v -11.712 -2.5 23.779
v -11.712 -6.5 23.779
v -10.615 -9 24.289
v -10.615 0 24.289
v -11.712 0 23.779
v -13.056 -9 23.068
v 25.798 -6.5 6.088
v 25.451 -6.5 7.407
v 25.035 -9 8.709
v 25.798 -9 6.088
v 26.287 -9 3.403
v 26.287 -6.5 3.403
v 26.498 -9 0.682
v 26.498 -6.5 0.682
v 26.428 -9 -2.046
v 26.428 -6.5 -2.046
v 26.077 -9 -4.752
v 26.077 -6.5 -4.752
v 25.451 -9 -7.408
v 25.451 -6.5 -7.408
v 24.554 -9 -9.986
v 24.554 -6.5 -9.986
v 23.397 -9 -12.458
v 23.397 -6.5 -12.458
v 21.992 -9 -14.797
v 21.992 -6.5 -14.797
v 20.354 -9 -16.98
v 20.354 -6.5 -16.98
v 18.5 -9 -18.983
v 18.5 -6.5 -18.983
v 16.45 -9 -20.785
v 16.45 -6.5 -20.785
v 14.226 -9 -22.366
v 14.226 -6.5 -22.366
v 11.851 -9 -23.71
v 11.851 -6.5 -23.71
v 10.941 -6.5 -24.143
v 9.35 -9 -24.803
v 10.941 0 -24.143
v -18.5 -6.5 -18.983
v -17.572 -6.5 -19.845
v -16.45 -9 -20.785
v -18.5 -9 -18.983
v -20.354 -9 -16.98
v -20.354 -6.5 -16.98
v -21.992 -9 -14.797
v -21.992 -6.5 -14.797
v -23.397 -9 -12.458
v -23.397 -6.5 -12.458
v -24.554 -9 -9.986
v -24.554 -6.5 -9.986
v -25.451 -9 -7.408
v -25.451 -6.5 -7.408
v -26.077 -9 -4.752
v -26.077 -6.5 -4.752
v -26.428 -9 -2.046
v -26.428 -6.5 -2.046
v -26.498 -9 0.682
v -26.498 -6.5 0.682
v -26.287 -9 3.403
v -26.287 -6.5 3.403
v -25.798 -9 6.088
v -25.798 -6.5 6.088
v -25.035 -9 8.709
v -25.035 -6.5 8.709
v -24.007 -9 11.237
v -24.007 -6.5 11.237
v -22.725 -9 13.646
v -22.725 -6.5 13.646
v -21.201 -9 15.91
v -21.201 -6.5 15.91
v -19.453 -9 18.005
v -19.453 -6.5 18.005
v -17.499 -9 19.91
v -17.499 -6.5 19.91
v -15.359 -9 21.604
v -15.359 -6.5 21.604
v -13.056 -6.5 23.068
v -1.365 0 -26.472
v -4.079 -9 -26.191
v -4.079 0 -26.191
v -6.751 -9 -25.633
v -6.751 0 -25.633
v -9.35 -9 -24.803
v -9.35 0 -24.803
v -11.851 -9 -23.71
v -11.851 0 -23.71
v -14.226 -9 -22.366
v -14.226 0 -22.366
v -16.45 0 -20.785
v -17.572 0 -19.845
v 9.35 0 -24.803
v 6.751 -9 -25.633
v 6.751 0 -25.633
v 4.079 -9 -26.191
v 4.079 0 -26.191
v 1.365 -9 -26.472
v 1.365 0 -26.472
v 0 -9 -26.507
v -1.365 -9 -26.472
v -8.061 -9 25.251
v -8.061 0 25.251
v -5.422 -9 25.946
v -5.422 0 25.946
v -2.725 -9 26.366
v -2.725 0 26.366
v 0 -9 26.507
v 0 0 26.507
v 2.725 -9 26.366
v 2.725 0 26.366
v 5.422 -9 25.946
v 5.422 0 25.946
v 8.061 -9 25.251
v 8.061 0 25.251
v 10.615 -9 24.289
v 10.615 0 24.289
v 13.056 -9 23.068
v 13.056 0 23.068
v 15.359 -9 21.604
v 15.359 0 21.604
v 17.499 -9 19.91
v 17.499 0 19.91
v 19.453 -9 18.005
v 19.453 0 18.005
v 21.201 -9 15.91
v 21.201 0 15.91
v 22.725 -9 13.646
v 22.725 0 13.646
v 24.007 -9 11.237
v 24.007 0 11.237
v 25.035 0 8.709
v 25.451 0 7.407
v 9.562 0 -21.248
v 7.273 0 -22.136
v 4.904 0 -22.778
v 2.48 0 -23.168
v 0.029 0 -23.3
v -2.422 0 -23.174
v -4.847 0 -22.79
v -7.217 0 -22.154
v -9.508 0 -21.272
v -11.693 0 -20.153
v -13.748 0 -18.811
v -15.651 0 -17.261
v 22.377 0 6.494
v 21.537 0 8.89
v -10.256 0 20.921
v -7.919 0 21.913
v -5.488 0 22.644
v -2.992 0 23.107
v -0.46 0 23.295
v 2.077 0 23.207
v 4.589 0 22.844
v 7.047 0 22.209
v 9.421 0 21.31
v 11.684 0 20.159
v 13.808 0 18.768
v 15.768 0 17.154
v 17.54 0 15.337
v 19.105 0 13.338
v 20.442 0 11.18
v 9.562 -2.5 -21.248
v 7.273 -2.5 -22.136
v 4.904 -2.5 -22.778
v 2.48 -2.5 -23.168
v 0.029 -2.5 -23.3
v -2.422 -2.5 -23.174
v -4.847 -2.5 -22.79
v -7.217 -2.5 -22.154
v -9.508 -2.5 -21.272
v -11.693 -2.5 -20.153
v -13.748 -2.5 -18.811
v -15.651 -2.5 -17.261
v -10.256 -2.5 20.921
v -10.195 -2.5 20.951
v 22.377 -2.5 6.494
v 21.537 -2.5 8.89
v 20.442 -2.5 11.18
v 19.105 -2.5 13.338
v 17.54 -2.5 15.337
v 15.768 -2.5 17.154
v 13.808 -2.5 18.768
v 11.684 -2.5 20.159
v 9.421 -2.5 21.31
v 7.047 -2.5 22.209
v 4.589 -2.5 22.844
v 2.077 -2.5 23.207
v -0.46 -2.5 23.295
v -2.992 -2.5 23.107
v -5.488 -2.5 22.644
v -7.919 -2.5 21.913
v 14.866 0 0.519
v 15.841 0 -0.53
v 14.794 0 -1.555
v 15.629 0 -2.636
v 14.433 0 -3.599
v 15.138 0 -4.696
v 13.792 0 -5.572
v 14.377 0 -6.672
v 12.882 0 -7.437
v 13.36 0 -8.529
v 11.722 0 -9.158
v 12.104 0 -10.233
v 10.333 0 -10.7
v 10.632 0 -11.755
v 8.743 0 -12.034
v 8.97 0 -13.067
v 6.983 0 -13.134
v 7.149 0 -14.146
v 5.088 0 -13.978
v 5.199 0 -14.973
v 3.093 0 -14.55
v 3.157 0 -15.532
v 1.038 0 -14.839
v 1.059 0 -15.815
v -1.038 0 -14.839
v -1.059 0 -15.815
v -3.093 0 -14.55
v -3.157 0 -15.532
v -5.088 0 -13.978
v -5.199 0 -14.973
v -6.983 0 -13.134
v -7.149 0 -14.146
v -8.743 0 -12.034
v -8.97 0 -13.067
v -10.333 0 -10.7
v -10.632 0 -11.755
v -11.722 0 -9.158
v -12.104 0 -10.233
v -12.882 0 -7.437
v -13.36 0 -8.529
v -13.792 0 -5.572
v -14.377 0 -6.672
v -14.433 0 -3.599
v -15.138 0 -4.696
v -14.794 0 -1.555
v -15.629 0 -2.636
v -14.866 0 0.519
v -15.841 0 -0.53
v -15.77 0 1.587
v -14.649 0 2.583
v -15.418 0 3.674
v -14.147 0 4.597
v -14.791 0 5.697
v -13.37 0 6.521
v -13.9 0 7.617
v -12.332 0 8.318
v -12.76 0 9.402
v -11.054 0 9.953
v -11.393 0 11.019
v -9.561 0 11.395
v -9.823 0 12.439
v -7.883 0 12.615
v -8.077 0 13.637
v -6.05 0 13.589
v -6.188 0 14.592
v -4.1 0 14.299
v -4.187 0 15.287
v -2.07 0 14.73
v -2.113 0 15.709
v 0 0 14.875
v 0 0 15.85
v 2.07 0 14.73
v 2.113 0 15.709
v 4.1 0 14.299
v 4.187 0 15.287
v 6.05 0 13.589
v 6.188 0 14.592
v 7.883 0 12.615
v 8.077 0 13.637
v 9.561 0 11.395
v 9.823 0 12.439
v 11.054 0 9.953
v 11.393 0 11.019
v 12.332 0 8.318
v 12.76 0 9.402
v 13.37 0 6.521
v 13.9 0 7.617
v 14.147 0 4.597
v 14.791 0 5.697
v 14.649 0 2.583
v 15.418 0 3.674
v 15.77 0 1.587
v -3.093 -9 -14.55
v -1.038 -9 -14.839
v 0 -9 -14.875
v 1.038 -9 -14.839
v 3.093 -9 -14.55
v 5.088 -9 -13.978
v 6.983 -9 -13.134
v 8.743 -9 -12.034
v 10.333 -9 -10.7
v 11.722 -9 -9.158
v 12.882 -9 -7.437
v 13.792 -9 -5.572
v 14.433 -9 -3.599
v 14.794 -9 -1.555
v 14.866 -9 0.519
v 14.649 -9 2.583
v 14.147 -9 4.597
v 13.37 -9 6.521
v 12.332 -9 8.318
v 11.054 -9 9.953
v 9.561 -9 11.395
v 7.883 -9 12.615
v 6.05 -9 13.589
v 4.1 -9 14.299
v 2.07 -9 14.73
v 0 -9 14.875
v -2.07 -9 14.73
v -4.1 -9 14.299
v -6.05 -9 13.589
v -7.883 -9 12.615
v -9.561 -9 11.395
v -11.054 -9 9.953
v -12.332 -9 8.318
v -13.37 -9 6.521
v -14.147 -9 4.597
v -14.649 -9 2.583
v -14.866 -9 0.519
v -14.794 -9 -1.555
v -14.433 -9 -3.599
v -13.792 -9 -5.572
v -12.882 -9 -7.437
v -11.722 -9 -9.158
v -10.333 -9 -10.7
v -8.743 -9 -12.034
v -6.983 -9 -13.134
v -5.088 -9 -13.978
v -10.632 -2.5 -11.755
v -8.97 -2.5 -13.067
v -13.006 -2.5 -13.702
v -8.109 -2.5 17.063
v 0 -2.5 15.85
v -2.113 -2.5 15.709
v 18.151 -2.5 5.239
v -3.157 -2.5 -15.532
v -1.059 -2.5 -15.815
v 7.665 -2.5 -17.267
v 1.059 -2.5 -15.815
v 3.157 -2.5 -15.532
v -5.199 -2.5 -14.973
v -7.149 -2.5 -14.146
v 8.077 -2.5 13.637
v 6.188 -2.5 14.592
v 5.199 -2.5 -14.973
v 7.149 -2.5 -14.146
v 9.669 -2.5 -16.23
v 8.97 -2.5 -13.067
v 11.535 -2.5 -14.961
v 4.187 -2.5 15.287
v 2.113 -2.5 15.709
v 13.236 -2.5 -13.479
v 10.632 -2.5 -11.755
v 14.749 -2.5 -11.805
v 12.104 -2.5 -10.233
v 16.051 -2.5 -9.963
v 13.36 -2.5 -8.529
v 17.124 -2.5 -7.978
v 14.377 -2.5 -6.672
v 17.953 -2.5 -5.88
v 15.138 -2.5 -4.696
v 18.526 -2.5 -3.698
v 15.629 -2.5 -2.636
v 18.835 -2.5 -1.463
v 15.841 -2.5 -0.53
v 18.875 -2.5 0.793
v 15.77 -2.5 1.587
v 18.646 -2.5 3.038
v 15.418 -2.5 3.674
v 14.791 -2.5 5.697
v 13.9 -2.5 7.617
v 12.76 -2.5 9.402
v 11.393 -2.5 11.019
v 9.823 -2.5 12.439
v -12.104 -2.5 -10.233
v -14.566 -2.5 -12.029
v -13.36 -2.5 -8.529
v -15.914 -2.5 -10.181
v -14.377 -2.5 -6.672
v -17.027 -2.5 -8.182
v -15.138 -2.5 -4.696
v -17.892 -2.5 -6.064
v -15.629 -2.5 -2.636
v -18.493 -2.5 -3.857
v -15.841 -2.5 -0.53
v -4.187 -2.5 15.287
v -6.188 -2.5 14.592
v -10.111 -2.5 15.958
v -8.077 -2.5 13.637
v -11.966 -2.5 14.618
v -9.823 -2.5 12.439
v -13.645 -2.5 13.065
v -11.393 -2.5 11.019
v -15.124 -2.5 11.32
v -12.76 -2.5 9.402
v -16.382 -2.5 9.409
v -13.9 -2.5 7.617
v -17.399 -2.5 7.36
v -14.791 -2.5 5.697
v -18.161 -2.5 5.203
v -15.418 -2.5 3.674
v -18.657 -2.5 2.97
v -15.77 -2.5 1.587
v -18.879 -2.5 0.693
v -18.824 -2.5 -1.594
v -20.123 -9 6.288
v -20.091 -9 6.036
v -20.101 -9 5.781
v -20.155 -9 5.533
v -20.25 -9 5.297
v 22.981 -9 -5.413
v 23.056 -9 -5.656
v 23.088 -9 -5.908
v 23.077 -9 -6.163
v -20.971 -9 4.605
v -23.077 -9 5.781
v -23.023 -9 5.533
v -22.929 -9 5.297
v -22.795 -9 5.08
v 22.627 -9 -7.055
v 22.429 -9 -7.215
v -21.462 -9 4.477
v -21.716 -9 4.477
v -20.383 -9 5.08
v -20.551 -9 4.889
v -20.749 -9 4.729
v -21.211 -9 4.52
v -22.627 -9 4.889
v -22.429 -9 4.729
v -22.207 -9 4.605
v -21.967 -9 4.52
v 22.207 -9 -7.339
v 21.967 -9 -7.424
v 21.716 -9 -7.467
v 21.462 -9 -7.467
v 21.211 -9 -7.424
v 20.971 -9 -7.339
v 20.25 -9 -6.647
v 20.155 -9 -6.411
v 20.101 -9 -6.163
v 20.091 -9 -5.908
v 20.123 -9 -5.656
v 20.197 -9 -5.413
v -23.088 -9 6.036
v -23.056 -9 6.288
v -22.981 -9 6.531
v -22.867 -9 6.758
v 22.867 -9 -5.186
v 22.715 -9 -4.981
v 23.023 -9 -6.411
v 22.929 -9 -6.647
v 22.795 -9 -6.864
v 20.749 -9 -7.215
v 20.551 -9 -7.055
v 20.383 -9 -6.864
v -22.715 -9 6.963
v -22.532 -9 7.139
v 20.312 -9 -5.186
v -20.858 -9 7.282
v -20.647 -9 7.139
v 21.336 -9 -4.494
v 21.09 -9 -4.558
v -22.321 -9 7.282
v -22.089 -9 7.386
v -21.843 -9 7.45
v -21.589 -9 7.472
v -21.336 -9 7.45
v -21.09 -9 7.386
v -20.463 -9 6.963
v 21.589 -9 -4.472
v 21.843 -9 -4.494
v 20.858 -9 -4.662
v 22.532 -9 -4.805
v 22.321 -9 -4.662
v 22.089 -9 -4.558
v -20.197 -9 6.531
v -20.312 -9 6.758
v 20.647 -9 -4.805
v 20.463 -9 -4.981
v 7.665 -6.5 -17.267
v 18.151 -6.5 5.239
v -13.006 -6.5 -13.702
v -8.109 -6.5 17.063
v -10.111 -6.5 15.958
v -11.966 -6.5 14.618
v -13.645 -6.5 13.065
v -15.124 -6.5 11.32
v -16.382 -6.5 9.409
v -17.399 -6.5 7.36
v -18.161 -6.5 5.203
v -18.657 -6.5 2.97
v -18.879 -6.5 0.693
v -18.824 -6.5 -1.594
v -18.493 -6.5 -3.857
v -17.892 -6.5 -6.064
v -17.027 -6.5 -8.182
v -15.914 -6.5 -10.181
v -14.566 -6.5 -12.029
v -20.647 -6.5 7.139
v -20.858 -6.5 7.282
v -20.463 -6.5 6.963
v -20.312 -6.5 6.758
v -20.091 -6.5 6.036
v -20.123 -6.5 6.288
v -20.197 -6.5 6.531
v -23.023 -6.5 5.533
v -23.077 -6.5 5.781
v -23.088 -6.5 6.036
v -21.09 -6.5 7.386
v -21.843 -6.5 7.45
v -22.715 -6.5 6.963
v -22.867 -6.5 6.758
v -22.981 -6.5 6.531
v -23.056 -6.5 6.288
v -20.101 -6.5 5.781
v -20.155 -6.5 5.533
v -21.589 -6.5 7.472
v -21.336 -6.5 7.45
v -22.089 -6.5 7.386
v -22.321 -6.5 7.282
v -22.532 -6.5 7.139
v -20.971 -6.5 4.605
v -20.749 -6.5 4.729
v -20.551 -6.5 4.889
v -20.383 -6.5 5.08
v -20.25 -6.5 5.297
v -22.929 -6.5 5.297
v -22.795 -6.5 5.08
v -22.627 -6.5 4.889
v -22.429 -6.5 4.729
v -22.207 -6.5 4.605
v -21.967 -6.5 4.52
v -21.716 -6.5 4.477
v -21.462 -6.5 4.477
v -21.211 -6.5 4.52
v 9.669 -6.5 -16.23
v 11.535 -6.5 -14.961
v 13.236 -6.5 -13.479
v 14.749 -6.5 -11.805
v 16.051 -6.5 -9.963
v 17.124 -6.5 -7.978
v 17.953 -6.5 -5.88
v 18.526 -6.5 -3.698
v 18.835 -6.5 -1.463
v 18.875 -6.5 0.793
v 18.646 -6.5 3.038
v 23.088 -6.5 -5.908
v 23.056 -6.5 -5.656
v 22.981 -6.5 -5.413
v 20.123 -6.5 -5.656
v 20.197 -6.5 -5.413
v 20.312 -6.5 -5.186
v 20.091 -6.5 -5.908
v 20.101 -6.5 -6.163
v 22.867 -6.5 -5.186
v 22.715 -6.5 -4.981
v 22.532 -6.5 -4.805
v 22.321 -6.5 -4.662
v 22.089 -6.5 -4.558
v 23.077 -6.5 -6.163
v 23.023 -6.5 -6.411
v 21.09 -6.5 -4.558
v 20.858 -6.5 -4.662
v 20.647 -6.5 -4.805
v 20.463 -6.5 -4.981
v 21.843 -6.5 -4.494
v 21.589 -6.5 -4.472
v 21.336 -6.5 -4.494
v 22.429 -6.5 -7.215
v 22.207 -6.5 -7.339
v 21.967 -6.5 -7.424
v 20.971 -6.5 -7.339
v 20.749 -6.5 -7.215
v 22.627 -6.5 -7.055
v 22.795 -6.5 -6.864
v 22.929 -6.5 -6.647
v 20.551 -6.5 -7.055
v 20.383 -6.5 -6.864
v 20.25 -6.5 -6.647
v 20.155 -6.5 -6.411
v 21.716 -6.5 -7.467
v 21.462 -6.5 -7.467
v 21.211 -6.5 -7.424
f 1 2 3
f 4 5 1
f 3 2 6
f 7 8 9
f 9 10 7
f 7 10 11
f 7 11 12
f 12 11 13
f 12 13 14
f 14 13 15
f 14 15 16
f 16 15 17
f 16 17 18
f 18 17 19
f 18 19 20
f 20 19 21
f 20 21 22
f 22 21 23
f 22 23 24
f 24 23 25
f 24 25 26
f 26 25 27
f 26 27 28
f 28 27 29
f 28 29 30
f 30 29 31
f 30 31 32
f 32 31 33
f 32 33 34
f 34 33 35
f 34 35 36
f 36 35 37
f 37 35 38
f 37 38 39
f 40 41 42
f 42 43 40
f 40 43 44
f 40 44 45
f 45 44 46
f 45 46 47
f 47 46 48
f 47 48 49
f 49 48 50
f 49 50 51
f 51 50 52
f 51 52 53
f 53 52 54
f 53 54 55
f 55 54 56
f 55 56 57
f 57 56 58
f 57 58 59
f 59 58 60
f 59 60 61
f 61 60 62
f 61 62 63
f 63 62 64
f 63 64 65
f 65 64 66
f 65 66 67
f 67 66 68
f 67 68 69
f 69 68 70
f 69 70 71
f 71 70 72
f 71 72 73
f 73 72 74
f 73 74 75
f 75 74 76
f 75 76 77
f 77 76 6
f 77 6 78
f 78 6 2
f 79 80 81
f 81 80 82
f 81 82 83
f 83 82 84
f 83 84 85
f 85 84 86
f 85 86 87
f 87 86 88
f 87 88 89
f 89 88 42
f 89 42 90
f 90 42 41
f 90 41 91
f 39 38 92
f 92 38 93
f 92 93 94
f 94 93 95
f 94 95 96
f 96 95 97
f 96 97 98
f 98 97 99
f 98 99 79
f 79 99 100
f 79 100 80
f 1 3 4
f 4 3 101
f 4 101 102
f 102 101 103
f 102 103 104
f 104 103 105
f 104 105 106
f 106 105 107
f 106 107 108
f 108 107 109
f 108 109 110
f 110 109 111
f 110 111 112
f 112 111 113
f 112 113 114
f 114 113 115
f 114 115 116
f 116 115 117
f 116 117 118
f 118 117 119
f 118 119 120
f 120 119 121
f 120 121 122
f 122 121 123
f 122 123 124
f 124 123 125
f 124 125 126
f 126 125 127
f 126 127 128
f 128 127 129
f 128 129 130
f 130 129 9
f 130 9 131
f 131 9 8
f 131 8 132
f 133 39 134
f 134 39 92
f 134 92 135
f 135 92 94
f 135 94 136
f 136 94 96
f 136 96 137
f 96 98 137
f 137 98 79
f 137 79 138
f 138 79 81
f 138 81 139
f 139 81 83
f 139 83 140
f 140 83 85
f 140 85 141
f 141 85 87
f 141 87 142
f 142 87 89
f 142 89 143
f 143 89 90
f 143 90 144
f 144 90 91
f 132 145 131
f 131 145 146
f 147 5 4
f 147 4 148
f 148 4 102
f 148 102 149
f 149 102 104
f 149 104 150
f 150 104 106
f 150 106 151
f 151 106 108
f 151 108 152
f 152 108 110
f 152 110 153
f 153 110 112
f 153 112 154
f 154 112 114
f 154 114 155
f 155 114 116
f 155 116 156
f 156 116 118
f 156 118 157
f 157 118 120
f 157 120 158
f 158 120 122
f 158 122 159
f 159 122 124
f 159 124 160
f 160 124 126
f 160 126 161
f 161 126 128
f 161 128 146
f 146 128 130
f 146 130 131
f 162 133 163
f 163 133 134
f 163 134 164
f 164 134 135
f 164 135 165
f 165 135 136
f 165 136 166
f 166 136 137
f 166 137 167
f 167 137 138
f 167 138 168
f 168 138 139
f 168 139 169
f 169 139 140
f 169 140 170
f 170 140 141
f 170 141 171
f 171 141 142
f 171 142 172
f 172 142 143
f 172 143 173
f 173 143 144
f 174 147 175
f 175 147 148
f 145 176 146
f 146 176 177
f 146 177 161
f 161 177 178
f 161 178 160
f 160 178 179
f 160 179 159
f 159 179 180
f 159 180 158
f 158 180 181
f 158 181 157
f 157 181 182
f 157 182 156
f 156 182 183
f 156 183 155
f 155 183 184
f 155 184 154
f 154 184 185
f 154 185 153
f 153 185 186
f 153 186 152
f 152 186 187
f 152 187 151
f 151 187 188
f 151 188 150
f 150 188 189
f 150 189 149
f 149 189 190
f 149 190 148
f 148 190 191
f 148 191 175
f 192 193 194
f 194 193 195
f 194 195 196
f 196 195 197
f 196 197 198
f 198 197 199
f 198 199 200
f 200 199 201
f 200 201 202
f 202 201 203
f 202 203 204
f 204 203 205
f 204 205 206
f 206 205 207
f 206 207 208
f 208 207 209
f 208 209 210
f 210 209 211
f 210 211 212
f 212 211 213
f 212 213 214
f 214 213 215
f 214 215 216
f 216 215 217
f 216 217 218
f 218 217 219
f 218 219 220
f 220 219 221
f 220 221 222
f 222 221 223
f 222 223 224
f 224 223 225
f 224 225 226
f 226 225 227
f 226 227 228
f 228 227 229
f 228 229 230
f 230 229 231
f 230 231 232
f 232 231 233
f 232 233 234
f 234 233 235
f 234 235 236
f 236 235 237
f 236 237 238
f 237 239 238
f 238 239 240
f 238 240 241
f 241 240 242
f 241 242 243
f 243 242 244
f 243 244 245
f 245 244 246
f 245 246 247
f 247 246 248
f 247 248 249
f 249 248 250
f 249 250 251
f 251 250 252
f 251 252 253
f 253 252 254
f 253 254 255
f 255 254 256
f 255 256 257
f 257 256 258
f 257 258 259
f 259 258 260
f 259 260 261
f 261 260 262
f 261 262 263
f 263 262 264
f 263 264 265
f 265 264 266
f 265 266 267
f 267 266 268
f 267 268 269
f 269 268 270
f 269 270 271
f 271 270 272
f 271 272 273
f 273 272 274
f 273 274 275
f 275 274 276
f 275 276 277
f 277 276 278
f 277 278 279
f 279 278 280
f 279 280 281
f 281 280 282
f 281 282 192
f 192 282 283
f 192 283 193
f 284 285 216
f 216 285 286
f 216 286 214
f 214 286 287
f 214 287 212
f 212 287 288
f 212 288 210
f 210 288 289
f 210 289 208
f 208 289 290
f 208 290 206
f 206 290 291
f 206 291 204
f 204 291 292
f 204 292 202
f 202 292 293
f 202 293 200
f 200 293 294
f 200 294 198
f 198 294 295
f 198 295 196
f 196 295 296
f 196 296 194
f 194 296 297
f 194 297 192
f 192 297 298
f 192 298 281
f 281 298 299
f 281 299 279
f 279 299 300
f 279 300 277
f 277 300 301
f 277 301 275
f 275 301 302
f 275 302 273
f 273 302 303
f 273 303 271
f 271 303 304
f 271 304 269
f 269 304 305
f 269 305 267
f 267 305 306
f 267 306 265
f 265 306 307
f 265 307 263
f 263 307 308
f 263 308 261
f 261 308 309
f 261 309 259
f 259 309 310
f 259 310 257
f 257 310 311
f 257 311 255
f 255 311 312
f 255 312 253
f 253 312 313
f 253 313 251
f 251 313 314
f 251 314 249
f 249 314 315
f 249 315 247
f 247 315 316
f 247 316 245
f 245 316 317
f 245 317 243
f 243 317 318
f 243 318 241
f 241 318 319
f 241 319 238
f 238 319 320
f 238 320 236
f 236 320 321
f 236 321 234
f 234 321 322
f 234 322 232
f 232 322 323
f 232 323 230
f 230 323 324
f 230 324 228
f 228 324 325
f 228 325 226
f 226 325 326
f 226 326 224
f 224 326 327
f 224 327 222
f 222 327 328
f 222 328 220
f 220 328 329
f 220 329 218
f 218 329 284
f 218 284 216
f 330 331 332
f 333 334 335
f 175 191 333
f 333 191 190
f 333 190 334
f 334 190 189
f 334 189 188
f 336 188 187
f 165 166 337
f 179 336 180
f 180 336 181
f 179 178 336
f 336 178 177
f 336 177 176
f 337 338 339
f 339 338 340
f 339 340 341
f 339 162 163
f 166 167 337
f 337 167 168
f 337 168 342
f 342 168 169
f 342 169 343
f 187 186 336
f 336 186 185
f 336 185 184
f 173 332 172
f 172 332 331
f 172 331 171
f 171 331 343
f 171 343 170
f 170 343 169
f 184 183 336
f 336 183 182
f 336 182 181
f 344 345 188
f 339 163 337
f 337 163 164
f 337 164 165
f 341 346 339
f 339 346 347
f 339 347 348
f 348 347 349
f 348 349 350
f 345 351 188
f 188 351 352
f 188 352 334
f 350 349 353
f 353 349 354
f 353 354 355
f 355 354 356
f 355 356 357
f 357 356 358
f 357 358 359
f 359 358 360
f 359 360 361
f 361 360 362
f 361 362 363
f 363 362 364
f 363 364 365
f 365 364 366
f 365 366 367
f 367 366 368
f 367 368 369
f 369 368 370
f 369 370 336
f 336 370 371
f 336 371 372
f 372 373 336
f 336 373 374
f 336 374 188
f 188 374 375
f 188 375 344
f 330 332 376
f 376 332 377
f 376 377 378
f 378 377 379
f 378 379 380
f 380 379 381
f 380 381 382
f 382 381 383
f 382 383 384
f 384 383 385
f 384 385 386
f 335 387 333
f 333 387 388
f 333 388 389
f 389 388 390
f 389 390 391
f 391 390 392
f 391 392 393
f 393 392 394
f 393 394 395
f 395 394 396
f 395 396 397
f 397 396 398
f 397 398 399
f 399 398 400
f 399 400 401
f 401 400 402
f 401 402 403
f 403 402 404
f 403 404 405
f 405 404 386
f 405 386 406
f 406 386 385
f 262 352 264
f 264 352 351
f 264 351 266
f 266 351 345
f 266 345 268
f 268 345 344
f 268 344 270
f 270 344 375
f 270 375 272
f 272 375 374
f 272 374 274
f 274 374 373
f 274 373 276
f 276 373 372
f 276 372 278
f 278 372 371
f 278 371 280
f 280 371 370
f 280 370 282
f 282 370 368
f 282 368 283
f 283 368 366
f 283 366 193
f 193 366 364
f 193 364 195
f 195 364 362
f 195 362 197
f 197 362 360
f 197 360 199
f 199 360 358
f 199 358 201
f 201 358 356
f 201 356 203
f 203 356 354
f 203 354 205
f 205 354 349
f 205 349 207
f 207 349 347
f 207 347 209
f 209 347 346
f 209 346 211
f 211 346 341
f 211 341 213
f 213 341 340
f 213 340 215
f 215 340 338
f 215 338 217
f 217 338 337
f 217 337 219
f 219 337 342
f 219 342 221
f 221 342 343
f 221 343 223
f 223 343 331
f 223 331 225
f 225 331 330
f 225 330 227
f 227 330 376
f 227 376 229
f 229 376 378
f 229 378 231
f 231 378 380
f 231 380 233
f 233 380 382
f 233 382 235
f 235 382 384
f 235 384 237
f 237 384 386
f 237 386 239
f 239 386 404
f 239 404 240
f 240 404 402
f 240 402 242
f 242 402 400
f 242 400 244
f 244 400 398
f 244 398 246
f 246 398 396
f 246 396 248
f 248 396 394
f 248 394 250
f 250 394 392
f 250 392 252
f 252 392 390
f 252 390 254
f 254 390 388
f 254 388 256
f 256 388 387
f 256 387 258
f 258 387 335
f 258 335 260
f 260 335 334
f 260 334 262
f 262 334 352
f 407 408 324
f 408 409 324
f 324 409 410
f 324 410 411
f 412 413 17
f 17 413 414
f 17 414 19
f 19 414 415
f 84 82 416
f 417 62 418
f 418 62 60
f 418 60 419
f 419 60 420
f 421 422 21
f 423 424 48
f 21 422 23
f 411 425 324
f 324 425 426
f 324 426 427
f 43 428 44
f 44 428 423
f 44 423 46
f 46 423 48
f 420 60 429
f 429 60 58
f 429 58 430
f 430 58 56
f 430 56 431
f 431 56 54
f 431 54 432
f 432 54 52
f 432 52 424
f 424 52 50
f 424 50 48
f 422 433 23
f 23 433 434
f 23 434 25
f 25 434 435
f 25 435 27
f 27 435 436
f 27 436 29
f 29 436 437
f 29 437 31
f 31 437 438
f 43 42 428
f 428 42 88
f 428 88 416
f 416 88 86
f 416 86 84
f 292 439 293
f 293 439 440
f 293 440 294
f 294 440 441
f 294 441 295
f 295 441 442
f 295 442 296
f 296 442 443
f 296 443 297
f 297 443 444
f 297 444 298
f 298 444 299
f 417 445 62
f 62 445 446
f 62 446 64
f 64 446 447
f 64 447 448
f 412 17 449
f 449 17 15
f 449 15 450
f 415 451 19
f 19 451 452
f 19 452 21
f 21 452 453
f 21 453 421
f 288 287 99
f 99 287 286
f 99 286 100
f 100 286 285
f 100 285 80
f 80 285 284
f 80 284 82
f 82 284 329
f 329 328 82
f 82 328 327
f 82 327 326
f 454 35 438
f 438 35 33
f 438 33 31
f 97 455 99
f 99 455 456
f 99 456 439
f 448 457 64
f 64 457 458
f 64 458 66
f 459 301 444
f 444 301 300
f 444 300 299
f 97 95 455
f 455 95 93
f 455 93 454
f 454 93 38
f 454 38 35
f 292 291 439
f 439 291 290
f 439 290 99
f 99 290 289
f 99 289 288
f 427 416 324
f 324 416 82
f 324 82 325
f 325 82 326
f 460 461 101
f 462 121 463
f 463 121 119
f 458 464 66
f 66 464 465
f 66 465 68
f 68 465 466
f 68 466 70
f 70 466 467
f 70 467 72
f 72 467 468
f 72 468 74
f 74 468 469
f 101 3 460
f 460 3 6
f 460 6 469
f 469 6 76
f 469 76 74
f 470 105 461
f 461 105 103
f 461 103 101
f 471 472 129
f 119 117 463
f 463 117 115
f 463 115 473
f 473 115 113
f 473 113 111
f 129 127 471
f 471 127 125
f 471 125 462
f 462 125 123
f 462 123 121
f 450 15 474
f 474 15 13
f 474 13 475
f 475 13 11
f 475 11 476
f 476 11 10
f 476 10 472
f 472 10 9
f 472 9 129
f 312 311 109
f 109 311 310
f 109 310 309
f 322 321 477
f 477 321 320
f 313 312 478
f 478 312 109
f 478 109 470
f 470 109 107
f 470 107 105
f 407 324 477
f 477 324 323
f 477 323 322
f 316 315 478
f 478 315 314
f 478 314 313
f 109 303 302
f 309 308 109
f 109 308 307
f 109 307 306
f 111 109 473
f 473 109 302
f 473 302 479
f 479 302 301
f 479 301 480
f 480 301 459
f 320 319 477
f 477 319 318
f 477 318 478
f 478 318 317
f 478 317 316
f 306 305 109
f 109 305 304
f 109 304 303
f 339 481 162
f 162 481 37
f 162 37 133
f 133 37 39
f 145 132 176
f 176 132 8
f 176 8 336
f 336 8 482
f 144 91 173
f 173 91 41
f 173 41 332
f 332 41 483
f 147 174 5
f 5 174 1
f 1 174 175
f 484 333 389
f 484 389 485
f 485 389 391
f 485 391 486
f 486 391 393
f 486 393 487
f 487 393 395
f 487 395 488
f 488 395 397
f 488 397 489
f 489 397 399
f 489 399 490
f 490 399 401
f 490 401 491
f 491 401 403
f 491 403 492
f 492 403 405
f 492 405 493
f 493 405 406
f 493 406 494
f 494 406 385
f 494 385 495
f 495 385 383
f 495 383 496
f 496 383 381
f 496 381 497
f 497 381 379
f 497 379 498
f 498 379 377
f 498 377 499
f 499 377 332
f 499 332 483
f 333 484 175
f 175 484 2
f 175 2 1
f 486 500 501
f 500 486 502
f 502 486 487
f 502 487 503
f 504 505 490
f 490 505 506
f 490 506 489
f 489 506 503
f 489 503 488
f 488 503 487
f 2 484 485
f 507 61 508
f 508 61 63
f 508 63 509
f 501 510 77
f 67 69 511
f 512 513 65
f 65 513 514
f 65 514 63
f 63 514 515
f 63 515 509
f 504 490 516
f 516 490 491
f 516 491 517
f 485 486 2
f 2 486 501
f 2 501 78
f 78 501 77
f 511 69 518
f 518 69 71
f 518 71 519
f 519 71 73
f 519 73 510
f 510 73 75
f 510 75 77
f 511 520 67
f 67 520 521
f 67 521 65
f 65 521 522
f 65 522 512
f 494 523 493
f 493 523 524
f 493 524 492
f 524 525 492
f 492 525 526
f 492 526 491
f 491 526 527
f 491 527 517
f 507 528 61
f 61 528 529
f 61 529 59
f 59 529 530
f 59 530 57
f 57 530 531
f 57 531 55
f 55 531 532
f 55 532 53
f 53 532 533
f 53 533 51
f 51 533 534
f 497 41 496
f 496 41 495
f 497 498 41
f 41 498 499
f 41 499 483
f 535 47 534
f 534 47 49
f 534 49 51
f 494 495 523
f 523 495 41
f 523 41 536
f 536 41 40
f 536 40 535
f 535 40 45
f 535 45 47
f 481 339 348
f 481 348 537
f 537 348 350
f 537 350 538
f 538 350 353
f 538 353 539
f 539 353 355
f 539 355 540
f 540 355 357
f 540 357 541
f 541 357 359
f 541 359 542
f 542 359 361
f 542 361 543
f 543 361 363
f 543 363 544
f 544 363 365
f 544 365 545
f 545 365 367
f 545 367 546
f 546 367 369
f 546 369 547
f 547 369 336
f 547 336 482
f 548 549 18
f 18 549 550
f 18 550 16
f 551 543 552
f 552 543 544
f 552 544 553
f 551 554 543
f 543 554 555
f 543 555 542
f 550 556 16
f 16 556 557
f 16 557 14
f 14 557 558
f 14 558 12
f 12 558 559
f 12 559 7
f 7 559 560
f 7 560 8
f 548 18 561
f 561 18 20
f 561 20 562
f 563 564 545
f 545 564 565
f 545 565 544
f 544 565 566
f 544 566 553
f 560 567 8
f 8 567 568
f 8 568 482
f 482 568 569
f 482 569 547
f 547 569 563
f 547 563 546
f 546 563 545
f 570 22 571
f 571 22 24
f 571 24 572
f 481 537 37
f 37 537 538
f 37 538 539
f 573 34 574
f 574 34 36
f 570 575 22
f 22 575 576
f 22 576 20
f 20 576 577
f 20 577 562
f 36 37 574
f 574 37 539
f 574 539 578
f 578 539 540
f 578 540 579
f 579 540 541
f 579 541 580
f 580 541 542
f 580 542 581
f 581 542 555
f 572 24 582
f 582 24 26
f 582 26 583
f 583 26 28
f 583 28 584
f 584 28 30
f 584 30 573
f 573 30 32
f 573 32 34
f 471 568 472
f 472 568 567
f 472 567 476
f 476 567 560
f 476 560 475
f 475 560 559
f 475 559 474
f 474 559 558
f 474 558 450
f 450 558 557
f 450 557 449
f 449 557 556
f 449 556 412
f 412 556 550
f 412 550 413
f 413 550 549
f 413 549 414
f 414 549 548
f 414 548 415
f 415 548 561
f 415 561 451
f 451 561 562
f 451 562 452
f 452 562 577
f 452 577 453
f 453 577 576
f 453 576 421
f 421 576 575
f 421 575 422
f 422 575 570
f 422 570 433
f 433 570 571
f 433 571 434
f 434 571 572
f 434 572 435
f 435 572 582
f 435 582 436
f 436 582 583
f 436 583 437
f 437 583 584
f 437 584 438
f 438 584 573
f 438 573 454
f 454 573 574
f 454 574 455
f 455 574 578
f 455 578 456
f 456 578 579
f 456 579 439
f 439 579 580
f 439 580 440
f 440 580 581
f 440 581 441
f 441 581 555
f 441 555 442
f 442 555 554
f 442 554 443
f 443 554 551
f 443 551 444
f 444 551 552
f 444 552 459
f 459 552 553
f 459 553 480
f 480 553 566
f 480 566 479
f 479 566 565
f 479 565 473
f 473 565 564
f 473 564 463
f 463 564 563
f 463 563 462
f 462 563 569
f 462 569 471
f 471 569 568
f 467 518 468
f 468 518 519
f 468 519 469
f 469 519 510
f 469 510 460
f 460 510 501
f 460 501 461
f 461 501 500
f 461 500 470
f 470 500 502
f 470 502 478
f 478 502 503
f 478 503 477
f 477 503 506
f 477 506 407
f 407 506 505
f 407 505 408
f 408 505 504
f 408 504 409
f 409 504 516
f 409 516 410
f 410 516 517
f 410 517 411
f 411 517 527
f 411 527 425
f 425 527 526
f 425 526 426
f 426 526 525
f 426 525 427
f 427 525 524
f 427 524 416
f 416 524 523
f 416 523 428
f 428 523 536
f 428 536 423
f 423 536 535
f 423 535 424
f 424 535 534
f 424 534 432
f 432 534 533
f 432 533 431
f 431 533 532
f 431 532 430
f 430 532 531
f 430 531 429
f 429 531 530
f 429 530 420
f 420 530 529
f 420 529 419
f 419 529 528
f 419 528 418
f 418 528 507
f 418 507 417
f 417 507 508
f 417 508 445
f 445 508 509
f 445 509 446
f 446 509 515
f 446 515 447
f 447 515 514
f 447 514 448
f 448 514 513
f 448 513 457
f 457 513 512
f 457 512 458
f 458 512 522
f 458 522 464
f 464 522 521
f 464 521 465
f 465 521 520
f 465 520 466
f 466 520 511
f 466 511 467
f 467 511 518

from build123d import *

# Parameters (mm, degrees)
ESQUISSE1_R                = 26.506823587
ESQUISSE1_R_2              = 14.875
BOSS_EXTRU_1_DEPTH         = 5
ESQUISSE2_R                = 23.3
ESQUISSE2_R_2              = 15.85
ENL_V_MAT_EXTRU_1_DEPTH    = 2.5
SKETCH1_R                  = 26.506823587
BOSS_EXTRUDE1_DEPTH        = 50
CUT_EXTRUDE6_START         = -46
SKETCH10_R                 = 26.506823587
CUT_EXTRUDE6_DEPTH         = 46
CUT_EXTRUDE7_START         = 23
CUT_EXTRUDE7_DEPTH         = 23
CUT_EXTRUDE8_DEPTH         = 4
SKETCH13_R                 = 14.875
CUT_EXTRUDE9_DEPTH         = 10
TROUS_DE_CENTRAGE_3_0MM1_D = 3


with BuildPart() as part:
    # Esquisse1 → Boss.-Extru.1 (new body)
    with BuildSketch(Plane(origin=(0, 0, 0), x_dir=(1, 0, 0), z_dir=(0, 1, 0))):
        Circle(ESQUISSE1_R)
        Circle(ESQUISSE1_R_2, mode=Mode.SUBTRACT)
    extrude(amount=-BOSS_EXTRU_1_DEPTH)

    # Esquisse2 → Enlèv. mat.-Extru.1 (cut)
    with BuildSketch(Plane(origin=(0, 0, 0), x_dir=(1, 0, 0), z_dir=(0, 1, 0))):
        Circle(ESQUISSE2_R)
        Circle(ESQUISSE2_R_2, mode=Mode.SUBTRACT)
    extrude(amount=-ENL_V_MAT_EXTRU_1_DEPTH, mode=Mode.SUBTRACT)

    # Sketch1 → Boss-Extrude1 (add)
    with BuildSketch(Plane.XZ.offset(5)):
        Circle(SKETCH1_R)
    extrude(amount=BOSS_EXTRUDE1_DEPTH)

    # Sketch10 → Cut-Extrude6 (cut)
    with BuildSketch(Plane.XZ.offset(55).offset(CUT_EXTRUDE6_START)):
        Circle(SKETCH10_R)
    extrude(amount=CUT_EXTRUDE6_DEPTH, mode=Mode.SUBTRACT)

    # Sketch11 → Cut-Extrude7 (cut)
    with BuildSketch(Plane(origin=(0, -2.5, 0), x_dir=(1, 0, 0), z_dir=(0, 1, 0)).offset(CUT_EXTRUDE7_START)):
        with BuildLine():
            ThreePointArc((3.089292847, -15.546021025), (-7.106964395, -14.192172687), (-14.298787433, -6.838653226))
            ThreePointArc((-14.298787433, -6.838653226), (-15.6186236, 2.698350765), (-11.17547923, 11.239713697))
            Line((-11.17547923, 11.239713697), (-18.357041818, 20.900818346))
            ThreePointArc((-18.357041818, 20.900818346), (-27.289505672, -3.550750304), (-12.221843482, -24.778884374))
            Line((-12.221843482, -24.778884374), (-10.256093613, -20.921341826))
            ThreePointArc((-10.256093613, -20.921341826), (9.421496674, -21.310218216), (22.376731607, -6.493988189))
            Line((22.376731607, -6.493988189), (27.230046935, -7.935538889))
            ThreePointArc((27.230046935, -7.935538889), (25.871646158, 11.865956721), (11.723526474, 25.786272467))
            Line((11.723526474, 25.786272467), (6.35639752, 14.519597466))
            ThreePointArc((6.35639752, 14.519597466), (7.430217711, 14.000513018), (8.46196456, 13.402151163))
            ThreePointArc((8.46196456, 13.402151163), (14.880283403, 6.412842881), (15.55329147, -3.052478411))
            ThreePointArc((15.55329147, -3.052478411), (11.220901892, -11.194367366), (3.089292847, -15.546021025))
        make_face()
    extrude(amount=-CUT_EXTRUDE7_DEPTH, mode=Mode.SUBTRACT)

    # Sketch12 → Cut-Extrude8 (cut)
    with BuildSketch(Plane(origin=(0, -2.5, 0), x_dir=(1, 0, 0), z_dir=(0, 1, 0))):
        with BuildLine():
            Line((-17.572262491, 19.845082201), (-13.005635601, 13.70175897))
            ThreePointArc((-13.005635601, 13.70175897), (-18.656508539, -2.969755104), (-8.108525171, -17.062724747))
            Line((-8.108525171, -17.062724747), (-11.712252125, -23.77887396))
            ThreePointArc((-11.712252125, -23.77887396), (-26.270860033, -3.528967239), (-17.572262491, 19.845082201))
        make_face()
        with BuildLine():
            Line((10.940944201, 24.143476068), (7.664960465, 17.26653229))
            ThreePointArc((7.664960465, 17.26653229), (17.123986027, 7.978336844), (18.150504226, -5.238697604))
            Line((18.150504226, -5.238697604), (25.450871211, -7.407081157))
            ThreePointArc((25.450871211, -7.407081157), (24.082160878, 11.075252778), (10.940944201, 24.143476068))
        make_face()
    extrude(amount=-CUT_EXTRUDE8_DEPTH, mode=Mode.SUBTRACT)

    # Sketch13 → Cut-Extrude9 (cut)
    with BuildSketch(Plane(origin=(0, -5, 0), x_dir=(1, 0, 0), z_dir=(0, 1, 0))):
        Circle(SKETCH13_R)
    extrude(amount=-CUT_EXTRUDE9_DEPTH, mode=Mode.SUBTRACT)

    # Trous de centrage Ø3.0mm1 (through all)
    with Locations(Plane(origin=(0, -6.5, 0), x_dir=(1, 0, 0), z_dir=(0, 1, 0))):
        with Locations((-21.589234965, -5.972012529), (21.589234965, 5.972012529)):
            Hole(TROUS_DE_CENTRAGE_3_0MM1_D / 2)


solid = part.part
